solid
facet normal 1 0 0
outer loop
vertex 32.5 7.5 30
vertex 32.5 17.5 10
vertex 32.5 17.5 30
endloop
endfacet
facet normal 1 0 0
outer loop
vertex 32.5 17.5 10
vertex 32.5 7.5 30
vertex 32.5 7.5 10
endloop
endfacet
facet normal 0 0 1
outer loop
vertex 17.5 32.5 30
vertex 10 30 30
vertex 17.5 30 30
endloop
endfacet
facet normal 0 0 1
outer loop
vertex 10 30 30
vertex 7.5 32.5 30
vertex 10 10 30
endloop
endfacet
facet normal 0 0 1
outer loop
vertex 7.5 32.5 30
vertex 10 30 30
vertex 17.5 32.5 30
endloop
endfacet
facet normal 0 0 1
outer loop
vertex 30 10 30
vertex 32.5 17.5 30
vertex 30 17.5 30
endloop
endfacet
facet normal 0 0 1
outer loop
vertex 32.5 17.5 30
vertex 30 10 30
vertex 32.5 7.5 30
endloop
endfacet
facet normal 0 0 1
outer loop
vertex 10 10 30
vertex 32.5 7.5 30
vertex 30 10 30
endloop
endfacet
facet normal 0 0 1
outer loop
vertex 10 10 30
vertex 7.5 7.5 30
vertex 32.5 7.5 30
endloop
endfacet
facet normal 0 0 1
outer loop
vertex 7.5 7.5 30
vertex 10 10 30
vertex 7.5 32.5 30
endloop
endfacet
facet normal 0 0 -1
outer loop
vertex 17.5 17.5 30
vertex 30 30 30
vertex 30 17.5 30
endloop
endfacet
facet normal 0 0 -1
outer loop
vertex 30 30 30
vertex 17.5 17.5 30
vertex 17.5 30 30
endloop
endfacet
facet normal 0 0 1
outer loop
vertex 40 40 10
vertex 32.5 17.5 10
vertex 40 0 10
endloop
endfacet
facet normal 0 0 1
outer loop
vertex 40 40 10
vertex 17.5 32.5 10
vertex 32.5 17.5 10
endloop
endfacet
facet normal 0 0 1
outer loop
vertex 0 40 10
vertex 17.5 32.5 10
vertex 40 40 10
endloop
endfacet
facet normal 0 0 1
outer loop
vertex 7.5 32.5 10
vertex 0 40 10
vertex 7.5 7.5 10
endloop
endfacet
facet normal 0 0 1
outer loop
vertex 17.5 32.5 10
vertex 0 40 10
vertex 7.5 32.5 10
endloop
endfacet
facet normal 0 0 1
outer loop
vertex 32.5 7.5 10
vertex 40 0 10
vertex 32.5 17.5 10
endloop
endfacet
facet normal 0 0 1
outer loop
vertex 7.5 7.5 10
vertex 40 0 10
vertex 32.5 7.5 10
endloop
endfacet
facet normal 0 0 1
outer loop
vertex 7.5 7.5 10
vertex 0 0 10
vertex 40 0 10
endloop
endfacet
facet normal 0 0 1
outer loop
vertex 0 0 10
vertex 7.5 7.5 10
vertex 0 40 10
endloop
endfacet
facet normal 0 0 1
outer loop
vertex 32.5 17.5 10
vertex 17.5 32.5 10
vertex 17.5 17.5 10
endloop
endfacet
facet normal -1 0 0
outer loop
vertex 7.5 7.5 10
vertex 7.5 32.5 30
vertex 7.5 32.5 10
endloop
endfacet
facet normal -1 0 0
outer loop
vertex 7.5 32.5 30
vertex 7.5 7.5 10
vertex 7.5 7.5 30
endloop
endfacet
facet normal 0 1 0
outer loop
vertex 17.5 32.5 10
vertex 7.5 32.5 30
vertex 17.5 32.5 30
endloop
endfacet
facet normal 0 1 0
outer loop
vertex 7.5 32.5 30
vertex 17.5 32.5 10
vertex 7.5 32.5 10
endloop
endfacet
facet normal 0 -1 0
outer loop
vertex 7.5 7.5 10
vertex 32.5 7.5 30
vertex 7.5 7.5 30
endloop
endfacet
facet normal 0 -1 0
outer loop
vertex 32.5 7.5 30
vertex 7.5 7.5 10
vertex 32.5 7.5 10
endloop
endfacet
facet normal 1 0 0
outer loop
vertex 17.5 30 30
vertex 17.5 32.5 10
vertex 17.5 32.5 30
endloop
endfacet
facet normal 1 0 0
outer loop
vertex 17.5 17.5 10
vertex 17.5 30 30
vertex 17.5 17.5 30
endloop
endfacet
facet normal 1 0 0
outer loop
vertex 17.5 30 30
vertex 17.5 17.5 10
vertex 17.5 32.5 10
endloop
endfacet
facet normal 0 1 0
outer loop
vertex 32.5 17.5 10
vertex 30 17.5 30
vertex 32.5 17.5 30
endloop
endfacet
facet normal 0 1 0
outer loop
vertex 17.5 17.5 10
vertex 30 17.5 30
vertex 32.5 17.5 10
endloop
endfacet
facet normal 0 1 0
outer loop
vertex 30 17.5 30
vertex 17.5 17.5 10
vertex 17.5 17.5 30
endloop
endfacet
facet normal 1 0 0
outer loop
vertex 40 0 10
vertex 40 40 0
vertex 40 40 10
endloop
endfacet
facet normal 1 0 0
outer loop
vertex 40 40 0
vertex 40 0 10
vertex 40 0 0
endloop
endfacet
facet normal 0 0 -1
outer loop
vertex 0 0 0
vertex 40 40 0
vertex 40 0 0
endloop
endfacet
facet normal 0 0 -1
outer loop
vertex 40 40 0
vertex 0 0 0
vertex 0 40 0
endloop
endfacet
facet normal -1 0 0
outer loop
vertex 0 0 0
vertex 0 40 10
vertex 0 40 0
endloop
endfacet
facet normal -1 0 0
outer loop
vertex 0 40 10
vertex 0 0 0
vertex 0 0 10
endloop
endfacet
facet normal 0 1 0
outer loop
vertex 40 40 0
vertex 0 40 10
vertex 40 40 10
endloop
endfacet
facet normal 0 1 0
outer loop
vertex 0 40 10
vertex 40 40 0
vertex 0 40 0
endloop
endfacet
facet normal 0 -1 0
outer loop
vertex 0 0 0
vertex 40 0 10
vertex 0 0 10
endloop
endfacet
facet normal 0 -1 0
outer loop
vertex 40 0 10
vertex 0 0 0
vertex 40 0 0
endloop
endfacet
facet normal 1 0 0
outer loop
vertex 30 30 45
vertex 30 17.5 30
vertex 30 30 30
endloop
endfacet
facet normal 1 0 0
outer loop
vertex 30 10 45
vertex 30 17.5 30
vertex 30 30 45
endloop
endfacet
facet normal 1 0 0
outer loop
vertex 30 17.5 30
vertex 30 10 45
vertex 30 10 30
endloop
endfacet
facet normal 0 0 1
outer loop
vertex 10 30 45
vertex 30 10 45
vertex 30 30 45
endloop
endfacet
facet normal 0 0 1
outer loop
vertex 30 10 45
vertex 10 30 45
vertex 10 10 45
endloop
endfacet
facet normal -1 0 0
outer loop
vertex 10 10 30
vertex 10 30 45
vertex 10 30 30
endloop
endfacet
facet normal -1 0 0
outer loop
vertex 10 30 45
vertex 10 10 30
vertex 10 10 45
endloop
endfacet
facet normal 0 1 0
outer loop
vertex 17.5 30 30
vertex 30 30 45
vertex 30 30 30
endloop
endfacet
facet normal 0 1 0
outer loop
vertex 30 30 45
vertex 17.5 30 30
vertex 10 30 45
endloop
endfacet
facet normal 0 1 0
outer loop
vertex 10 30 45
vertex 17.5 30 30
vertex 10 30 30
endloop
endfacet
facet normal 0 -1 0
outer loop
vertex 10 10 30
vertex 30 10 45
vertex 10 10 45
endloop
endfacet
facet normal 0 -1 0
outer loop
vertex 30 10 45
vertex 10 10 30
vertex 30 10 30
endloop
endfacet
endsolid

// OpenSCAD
// Base block dimensions
module base_block() {
    // Adjusted to have a flat top surface as per the original model
    cube([40, 40, 10], center = false);
}

// L-shaped block dimensions
module l_shaped_block() {
    // Simplified geometry to match the original model's flat and perpendicular sections
    difference() {
        cube([25, 25, 20], center = false); // Original size
        translate([10, 10, 0]) cube([15, 15, 20], center = false); // Original cutout
    }
}

// Vertical block dimensions
module vertical_block() {
    // Resized to be shorter and wider as per the original model
    cube([20, 20, 15], center = false);
}

// Assemble the model
module flexible_coupling() {
    // Layer 3: Base block
    base_block();

    // Layer 2: L-shaped block
    translate([7.5, 7.5, 10]) l_shaped_block(); // Adjusted position for alignment

    // Layer 1: Vertical block
    translate([10, 10, 30]) vertical_block(); // Adjusted position for alignment
}

// Render the model
flexible_coupling();
